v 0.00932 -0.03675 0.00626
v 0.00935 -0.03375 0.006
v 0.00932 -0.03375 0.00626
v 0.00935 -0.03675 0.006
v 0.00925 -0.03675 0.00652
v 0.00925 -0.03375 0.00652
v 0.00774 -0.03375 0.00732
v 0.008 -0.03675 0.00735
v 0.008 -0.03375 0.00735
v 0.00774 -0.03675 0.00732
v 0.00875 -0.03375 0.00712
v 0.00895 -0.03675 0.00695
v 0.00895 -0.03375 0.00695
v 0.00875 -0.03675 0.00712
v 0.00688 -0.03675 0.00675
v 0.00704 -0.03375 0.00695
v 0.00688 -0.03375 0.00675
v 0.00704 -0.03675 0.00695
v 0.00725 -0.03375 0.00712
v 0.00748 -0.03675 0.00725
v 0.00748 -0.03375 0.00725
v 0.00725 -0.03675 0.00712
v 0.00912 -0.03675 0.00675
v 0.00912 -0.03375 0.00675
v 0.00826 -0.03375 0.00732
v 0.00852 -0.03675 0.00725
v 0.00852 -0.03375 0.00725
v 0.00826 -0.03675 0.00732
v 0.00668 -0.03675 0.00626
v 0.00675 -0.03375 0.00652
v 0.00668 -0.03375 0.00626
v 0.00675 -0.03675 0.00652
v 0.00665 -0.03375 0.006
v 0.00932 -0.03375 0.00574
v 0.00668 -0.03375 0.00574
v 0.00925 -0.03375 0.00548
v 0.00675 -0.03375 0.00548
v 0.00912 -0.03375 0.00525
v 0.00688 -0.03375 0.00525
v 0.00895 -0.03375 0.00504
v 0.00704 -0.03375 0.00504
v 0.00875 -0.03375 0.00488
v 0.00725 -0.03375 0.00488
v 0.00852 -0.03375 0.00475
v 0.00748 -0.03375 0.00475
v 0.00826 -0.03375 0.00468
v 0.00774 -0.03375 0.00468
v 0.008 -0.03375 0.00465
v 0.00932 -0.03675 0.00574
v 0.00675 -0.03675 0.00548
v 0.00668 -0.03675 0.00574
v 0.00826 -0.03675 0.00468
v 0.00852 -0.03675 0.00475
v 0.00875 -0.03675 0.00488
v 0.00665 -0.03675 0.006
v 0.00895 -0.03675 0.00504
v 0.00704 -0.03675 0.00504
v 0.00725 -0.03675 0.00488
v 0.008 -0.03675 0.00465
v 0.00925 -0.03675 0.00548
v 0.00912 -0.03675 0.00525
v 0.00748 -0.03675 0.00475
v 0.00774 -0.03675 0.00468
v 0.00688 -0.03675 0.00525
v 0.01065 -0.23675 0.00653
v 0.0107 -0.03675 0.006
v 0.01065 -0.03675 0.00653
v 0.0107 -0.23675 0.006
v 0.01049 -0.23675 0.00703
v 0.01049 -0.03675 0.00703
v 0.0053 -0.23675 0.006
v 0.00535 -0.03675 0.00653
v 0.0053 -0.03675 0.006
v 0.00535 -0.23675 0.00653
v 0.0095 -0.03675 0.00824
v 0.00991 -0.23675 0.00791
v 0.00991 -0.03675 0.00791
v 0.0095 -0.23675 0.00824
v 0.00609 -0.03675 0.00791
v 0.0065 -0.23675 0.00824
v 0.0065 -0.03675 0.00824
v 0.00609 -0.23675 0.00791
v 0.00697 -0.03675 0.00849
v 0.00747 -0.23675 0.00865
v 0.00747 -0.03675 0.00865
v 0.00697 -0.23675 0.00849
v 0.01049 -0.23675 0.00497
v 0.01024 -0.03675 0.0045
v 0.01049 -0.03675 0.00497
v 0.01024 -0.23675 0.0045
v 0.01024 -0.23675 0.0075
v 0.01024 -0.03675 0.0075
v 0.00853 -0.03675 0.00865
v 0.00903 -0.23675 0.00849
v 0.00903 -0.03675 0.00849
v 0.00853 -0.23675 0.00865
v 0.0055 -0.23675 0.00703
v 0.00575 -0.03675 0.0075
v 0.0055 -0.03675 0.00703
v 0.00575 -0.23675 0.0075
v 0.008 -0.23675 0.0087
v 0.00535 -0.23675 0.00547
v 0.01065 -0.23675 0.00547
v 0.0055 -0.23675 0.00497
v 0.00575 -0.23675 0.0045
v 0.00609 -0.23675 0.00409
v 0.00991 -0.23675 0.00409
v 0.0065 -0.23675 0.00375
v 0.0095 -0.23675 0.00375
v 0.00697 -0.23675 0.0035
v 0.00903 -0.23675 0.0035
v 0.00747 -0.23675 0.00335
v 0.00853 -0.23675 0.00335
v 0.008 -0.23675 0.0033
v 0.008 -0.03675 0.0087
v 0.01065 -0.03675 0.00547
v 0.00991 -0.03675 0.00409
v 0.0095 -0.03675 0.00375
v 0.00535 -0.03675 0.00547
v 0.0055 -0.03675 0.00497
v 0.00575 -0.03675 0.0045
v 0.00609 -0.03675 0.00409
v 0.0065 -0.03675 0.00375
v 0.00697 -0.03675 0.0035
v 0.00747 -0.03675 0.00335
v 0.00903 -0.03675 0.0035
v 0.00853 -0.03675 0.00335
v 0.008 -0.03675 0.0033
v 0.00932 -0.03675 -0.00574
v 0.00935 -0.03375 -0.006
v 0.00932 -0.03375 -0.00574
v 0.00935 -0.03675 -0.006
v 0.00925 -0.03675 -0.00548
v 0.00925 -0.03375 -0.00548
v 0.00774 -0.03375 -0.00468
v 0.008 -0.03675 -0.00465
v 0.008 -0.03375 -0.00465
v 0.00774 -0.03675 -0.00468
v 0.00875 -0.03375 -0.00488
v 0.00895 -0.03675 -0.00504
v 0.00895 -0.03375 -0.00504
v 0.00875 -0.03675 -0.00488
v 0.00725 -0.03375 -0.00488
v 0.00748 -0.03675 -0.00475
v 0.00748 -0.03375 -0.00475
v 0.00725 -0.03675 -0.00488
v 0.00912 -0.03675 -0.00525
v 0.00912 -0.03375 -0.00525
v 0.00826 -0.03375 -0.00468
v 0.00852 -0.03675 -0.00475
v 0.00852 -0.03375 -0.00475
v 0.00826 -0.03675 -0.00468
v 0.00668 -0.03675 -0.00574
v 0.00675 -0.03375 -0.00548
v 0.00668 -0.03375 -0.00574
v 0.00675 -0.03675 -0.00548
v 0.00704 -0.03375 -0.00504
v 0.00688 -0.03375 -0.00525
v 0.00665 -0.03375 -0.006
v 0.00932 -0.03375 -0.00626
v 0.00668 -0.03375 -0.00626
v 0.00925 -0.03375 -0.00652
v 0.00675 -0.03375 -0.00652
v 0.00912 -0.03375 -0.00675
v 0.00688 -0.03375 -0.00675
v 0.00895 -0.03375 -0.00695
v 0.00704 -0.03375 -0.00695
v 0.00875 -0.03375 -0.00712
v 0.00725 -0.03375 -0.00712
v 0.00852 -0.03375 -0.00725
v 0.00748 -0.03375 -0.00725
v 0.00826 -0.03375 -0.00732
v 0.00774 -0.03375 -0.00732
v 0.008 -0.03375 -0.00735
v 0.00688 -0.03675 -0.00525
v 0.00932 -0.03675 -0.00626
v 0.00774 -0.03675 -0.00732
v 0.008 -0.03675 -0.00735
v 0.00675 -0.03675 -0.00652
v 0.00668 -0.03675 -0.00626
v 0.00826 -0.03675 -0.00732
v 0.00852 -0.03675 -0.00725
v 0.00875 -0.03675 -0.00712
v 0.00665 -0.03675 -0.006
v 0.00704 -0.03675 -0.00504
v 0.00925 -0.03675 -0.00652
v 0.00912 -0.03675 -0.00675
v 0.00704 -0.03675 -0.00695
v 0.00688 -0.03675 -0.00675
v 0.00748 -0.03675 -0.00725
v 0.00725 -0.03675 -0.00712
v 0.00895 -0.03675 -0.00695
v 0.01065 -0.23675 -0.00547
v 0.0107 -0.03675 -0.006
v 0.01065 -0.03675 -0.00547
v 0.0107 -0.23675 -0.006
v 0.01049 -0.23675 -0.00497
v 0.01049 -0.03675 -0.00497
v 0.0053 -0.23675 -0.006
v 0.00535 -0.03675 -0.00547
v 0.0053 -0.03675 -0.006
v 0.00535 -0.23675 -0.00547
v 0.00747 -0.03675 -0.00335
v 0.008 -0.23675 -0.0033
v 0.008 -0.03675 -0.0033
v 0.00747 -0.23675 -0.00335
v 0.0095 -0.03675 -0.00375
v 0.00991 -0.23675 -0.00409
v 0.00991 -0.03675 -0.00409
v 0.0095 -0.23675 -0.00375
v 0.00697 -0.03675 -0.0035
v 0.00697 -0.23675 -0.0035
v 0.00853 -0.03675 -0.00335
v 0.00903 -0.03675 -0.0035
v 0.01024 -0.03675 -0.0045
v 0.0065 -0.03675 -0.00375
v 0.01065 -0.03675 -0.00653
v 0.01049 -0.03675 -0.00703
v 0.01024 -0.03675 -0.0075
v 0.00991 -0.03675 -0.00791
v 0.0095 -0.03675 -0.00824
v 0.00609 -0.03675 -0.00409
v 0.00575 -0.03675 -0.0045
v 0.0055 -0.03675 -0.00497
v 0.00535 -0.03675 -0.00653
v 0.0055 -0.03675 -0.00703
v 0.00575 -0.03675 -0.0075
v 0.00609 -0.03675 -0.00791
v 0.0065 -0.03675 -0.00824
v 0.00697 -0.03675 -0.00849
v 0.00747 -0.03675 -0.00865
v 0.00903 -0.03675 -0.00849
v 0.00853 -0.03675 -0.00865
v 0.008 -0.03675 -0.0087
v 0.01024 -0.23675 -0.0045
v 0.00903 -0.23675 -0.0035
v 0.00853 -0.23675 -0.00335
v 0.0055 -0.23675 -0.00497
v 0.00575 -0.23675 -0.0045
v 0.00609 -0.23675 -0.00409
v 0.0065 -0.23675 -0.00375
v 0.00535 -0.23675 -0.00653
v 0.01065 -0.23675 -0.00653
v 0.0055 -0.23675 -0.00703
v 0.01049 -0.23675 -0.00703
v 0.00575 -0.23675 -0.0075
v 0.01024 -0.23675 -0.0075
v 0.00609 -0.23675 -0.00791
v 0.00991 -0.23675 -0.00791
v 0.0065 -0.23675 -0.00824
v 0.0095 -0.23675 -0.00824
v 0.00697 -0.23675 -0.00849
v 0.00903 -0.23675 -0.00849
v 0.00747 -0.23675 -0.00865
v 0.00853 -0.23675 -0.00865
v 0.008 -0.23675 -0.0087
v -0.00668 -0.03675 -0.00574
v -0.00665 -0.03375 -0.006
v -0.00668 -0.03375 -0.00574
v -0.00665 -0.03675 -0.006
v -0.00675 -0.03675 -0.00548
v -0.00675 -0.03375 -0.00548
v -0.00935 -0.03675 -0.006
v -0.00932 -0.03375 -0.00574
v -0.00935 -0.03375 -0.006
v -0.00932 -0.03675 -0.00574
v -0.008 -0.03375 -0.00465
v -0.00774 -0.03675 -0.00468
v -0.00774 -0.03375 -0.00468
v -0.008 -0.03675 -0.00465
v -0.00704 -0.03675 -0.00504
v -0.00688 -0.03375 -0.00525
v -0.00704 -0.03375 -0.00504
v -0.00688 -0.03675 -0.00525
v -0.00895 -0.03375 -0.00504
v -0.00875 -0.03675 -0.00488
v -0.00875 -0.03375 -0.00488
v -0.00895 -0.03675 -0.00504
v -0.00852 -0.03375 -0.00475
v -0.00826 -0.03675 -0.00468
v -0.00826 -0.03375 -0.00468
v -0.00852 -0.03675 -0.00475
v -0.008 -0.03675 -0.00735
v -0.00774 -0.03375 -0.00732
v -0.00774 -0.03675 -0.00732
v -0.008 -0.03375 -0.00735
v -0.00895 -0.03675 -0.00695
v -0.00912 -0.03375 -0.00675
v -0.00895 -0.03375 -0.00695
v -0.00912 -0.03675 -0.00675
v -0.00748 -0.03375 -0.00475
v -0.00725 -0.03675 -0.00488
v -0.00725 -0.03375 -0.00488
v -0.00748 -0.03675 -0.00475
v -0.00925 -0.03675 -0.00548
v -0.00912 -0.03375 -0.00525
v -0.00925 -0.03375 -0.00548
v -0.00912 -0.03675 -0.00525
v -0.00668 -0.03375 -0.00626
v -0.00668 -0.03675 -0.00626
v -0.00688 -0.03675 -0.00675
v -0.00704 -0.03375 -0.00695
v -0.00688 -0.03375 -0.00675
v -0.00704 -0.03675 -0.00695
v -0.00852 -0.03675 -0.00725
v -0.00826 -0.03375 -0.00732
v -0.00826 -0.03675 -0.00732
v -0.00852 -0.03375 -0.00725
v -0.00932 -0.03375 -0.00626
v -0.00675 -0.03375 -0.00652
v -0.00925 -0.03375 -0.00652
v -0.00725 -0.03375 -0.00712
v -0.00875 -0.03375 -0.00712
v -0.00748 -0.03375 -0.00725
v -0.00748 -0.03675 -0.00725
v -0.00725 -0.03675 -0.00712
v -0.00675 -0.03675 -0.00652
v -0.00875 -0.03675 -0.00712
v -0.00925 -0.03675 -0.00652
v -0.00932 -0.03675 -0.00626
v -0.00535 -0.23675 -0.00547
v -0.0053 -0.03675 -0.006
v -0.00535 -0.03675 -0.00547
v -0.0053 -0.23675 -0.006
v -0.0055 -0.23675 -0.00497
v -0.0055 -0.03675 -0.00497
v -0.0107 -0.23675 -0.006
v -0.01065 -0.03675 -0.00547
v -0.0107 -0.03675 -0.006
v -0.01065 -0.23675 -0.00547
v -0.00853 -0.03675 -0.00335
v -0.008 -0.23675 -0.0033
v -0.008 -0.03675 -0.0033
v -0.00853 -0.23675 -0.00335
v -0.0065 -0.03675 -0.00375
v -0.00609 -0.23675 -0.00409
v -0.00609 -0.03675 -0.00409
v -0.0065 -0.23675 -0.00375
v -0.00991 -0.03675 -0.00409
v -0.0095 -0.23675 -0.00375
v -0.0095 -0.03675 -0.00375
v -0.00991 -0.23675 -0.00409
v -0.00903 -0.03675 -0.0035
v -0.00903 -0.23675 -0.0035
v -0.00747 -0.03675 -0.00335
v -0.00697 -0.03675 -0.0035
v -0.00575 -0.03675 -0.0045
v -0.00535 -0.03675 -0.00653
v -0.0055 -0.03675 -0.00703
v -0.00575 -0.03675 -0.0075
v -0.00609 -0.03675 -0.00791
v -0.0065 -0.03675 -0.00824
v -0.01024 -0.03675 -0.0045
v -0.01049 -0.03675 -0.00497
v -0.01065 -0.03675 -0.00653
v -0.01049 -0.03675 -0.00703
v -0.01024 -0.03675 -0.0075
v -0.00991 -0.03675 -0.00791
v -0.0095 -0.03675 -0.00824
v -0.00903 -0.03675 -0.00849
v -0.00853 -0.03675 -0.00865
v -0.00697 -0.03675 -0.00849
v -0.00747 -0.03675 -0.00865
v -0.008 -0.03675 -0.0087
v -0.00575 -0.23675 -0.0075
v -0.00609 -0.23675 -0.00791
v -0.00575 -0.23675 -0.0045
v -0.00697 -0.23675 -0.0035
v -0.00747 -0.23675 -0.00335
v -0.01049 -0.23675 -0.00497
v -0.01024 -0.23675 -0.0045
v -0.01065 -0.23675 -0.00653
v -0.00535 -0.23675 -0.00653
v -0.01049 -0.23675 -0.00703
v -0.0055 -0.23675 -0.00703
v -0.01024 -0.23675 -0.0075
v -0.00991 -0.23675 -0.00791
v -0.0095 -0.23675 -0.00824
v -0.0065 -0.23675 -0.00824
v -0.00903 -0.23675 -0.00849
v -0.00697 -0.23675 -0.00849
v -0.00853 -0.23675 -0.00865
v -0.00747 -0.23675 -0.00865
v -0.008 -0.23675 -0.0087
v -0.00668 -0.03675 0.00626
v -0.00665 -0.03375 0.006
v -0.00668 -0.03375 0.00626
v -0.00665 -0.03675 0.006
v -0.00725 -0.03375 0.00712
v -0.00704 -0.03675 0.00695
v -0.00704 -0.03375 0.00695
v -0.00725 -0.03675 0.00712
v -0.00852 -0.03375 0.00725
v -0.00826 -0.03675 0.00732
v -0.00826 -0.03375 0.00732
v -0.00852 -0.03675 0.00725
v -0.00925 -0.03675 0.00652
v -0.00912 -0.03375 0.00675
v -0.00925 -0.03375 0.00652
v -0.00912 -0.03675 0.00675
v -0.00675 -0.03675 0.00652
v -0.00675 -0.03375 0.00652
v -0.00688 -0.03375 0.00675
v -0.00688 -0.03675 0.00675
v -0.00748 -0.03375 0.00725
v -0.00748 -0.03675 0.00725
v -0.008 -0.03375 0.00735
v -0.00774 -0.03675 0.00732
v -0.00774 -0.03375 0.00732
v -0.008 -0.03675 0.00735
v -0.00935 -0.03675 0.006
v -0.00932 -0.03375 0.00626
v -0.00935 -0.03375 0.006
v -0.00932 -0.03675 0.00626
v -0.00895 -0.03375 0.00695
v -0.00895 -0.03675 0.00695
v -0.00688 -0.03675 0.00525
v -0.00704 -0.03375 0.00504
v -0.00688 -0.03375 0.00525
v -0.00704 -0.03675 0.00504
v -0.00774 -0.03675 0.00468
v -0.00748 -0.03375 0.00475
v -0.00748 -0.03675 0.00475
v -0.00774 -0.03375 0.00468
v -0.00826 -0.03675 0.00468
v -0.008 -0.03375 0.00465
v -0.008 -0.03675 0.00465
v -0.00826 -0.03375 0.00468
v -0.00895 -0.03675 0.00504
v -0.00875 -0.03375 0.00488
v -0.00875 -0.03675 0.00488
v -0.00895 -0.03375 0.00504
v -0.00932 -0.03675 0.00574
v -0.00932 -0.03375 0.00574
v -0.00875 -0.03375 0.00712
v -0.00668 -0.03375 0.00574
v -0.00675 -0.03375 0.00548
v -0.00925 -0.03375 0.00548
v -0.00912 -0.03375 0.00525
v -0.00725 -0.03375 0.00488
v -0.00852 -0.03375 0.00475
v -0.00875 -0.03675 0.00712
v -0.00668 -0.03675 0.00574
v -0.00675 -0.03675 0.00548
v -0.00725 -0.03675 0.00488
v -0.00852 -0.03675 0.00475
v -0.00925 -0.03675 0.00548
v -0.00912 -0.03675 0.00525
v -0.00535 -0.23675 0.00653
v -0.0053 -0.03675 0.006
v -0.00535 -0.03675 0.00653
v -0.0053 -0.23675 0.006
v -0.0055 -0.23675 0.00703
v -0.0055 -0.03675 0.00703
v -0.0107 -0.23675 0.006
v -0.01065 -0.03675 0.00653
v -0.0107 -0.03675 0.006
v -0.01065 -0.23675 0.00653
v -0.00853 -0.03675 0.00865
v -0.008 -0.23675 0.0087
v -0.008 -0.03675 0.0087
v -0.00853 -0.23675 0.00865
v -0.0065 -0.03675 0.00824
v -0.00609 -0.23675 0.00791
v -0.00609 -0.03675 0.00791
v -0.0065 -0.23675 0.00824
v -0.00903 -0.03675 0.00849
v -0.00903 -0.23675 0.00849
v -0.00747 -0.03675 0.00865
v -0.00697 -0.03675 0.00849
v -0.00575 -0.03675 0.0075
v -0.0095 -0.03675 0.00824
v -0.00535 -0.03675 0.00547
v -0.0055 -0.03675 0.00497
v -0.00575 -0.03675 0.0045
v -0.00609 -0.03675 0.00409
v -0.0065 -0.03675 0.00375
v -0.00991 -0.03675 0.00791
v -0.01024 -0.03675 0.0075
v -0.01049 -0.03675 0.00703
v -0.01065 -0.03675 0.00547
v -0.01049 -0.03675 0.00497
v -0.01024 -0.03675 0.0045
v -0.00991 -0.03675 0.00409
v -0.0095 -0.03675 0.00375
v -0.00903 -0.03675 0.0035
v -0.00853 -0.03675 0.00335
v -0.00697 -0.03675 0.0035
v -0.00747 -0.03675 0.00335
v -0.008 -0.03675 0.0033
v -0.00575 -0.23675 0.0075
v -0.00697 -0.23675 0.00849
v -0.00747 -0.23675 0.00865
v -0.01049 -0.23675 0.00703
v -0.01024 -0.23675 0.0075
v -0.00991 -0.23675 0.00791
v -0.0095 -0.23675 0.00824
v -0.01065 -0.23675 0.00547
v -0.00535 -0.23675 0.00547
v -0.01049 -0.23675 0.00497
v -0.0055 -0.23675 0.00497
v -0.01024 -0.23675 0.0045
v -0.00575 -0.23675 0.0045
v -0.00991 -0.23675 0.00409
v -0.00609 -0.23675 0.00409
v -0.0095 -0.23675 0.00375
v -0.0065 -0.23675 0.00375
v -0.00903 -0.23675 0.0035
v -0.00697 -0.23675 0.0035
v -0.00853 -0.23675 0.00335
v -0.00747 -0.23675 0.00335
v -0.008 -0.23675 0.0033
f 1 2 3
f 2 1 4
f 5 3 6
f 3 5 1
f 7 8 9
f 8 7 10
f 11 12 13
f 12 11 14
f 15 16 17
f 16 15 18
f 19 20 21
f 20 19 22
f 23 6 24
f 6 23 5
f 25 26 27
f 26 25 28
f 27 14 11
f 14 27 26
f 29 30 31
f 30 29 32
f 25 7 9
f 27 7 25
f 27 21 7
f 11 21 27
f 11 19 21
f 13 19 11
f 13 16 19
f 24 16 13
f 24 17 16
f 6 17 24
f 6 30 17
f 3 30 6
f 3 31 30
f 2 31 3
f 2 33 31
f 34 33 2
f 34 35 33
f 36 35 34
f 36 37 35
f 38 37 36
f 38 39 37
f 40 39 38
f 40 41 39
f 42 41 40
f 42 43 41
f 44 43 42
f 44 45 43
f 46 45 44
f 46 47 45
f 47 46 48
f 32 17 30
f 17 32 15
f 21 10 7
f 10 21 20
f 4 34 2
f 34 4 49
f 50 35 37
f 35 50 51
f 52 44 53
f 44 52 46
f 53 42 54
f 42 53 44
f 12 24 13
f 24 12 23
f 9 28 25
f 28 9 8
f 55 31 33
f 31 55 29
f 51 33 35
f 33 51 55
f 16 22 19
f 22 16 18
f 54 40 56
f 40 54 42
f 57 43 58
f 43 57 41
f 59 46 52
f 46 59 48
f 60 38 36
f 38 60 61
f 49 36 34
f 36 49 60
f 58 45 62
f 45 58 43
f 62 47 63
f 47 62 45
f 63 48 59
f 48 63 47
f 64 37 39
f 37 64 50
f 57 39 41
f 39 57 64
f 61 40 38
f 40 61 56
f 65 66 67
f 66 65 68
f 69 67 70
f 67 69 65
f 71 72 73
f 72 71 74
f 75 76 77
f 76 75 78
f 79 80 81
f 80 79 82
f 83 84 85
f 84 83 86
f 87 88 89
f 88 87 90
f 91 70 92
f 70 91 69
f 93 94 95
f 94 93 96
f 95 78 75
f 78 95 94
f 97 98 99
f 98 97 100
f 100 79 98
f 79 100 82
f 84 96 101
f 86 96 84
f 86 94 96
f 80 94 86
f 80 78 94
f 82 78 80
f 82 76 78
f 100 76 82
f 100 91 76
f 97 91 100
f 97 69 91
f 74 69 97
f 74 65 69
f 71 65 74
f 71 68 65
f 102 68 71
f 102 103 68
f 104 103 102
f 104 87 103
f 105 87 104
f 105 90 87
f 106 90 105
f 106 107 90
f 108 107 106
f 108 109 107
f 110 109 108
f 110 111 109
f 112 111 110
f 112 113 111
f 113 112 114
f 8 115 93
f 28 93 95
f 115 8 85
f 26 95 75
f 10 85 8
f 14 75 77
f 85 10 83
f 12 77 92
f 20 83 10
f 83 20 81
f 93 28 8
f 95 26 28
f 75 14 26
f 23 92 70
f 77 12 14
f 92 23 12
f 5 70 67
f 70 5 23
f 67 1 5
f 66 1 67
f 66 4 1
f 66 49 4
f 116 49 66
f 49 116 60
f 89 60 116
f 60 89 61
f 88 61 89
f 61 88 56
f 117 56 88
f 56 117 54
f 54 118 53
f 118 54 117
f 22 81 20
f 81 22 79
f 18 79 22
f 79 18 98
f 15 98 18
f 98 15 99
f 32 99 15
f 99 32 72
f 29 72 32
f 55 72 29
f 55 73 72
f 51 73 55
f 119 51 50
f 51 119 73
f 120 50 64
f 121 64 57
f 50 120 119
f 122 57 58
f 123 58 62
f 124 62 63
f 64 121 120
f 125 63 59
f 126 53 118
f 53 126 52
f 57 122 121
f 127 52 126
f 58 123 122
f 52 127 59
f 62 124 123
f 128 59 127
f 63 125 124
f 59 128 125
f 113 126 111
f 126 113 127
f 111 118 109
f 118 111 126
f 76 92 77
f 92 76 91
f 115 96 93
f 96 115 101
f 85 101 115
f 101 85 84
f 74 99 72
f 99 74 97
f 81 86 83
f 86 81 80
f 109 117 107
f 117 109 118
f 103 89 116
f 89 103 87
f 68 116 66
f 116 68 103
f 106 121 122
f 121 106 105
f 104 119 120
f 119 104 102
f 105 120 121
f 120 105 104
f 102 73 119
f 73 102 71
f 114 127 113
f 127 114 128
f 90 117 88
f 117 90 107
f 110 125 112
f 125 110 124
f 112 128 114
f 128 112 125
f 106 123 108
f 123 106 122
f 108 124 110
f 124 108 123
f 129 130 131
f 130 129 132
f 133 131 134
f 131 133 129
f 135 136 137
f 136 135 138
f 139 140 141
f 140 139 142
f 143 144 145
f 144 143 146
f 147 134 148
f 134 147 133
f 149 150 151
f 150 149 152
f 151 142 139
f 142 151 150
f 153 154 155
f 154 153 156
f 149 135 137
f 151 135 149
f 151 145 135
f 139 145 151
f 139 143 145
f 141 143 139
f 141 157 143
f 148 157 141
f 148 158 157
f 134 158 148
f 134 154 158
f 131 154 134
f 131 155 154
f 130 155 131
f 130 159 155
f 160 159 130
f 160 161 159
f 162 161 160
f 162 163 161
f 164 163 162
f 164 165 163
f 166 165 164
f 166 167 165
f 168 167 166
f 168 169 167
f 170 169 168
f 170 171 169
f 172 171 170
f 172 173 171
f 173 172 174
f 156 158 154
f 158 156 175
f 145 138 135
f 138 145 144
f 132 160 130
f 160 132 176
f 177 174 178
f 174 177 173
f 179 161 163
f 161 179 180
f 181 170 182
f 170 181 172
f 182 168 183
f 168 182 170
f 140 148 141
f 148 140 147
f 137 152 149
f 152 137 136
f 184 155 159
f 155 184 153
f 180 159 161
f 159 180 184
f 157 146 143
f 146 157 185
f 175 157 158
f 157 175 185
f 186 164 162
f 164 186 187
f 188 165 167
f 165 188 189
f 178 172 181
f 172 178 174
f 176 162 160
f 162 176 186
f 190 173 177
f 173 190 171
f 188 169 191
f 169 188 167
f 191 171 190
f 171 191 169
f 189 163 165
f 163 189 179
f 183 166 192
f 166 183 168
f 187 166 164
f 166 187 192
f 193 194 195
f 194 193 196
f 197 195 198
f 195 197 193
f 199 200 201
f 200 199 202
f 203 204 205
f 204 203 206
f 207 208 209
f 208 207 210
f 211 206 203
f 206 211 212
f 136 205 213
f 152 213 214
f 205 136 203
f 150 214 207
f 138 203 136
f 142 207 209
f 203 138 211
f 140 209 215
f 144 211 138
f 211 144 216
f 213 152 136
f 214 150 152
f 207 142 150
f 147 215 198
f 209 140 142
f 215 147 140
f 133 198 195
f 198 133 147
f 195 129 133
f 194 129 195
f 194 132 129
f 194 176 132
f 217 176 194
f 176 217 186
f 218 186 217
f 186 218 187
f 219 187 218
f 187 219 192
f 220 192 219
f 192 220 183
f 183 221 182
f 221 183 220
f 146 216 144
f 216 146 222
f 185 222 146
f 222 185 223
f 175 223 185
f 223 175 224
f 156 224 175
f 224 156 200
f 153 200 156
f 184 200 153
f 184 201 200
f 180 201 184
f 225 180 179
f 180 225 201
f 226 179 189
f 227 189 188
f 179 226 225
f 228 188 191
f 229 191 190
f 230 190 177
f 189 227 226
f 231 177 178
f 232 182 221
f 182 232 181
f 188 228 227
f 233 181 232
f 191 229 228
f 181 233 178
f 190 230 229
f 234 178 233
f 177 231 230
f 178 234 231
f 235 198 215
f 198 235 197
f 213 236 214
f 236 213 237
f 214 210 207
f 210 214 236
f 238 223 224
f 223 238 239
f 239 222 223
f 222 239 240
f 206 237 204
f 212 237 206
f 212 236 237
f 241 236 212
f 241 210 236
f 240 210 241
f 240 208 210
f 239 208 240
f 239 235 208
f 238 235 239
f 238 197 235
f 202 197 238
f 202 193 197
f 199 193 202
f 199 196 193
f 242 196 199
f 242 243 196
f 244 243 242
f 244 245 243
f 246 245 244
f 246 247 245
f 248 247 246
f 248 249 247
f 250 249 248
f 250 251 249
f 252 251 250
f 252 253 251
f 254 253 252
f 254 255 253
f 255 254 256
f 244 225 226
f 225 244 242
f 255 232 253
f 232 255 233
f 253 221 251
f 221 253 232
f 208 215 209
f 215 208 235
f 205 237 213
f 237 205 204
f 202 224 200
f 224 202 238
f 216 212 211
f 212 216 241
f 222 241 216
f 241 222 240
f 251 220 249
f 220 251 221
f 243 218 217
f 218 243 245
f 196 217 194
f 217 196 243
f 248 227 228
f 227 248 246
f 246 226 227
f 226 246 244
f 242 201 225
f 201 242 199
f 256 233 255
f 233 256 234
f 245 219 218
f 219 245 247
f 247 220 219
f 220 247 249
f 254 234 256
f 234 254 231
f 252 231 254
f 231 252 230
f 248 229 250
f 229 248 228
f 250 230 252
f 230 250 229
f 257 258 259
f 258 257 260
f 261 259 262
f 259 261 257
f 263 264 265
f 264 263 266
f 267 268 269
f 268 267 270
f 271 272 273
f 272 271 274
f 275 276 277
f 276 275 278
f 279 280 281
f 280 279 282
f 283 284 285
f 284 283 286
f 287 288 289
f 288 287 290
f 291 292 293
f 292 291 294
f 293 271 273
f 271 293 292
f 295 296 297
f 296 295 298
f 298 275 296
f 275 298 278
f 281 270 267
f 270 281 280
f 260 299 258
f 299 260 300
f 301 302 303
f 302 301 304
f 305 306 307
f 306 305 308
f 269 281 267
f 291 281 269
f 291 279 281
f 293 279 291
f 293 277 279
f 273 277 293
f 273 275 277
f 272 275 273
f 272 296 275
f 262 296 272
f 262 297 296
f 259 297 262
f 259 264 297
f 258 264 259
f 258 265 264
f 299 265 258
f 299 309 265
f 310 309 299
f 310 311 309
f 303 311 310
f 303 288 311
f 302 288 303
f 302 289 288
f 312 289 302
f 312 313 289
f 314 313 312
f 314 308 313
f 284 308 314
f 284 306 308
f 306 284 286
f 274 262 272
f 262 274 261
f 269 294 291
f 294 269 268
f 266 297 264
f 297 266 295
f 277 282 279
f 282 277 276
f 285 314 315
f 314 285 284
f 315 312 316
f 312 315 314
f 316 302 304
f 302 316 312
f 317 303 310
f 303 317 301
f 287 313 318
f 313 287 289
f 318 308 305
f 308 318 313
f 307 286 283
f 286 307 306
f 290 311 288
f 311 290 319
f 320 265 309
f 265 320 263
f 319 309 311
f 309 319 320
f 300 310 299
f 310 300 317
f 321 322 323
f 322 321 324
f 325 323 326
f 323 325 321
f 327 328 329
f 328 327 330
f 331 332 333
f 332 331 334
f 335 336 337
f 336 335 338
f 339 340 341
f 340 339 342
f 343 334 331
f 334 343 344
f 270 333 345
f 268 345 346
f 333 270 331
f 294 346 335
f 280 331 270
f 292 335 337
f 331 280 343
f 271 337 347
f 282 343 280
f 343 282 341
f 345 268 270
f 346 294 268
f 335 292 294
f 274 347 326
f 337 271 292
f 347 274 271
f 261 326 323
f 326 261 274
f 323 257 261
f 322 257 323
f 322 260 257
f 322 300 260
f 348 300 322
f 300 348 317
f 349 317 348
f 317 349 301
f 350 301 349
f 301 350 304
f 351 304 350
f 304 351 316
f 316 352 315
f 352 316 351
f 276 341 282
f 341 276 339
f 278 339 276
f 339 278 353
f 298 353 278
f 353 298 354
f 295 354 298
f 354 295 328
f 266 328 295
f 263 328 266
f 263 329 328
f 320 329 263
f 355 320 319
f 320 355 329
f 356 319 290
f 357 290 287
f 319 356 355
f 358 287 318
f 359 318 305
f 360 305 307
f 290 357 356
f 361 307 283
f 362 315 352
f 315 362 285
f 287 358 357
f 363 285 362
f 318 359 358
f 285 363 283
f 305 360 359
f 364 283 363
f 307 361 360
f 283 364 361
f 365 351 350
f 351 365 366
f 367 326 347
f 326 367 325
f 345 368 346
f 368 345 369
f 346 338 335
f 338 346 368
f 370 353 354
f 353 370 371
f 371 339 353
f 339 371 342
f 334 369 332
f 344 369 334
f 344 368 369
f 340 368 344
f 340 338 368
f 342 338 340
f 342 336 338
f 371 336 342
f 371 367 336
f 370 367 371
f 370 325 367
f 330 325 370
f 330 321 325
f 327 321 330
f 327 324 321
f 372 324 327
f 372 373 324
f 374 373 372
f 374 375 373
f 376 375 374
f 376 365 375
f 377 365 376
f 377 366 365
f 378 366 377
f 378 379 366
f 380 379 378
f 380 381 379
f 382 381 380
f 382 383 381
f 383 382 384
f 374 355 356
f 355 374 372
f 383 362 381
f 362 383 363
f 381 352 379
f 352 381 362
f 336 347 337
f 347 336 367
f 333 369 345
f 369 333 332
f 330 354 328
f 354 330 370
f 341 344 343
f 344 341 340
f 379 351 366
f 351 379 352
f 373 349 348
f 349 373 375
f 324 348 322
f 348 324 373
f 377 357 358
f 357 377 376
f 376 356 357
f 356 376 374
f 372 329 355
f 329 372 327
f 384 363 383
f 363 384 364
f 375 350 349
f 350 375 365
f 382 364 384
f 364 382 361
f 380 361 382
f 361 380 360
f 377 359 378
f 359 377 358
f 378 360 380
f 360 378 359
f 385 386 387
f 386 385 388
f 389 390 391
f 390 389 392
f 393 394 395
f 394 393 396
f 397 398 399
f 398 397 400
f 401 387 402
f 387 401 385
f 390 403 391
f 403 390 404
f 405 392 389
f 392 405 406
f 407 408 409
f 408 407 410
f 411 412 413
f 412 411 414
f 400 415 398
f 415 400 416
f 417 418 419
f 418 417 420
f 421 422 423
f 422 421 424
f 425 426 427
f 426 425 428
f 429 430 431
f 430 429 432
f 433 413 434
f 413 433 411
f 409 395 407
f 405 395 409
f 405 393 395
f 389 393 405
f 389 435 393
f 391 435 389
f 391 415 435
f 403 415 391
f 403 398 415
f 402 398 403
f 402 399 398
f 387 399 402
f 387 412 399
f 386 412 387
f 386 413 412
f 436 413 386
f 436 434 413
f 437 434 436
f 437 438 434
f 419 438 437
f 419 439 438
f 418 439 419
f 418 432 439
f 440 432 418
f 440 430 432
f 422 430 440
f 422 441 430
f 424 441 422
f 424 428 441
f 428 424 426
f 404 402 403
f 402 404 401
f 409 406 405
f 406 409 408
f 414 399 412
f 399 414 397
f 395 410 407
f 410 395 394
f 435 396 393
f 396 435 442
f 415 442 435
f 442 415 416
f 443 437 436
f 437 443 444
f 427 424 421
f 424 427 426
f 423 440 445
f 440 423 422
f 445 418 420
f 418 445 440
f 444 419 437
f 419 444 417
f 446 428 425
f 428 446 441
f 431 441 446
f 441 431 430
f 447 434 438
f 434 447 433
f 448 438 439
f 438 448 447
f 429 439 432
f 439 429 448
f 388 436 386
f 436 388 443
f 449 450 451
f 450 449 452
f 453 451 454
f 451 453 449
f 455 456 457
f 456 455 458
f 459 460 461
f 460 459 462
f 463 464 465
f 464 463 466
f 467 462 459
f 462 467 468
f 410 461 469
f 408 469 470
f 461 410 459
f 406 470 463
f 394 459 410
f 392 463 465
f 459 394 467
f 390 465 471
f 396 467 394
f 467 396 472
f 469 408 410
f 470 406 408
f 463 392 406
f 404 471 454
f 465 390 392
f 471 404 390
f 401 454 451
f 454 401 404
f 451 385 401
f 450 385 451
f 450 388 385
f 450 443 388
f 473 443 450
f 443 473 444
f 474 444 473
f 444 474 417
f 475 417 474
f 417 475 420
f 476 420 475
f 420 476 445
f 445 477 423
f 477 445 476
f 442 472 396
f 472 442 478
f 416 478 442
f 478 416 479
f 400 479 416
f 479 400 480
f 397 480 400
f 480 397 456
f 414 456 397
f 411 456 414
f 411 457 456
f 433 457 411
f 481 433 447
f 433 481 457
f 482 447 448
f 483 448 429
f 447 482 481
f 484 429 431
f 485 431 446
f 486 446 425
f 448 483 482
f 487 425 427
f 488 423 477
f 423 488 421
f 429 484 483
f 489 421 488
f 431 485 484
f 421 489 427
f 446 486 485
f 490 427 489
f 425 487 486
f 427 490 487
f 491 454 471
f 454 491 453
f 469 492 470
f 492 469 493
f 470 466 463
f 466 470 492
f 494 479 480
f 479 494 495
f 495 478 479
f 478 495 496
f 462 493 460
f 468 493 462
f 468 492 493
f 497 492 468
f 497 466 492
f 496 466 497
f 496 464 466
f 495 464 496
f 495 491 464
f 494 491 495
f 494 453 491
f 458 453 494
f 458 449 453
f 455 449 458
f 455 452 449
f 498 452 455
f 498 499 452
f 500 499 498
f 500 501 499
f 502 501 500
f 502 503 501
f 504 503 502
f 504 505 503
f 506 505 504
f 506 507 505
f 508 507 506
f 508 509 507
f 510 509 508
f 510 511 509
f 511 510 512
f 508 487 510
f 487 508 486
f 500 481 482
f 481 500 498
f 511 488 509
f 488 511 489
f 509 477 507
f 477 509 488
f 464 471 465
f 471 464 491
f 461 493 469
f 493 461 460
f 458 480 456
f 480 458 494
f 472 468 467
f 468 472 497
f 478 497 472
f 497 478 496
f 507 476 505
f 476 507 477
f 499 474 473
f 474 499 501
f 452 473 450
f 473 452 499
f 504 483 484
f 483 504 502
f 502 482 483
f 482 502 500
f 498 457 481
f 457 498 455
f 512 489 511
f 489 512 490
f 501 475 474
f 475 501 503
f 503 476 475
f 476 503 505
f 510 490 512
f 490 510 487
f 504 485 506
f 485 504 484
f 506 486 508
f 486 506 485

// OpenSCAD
n = 128;
m = 32;
clearance = 0.0001;
delta = 0.000001;

HoleInR = 0.00125 + clearance;
HoleOutR = 2 * HoleInR;
HoleInW = 0.003;
HoleOutW = 0.2;


for (p = [[0.008, -0.03525, 0.006],
    [0.008, -0.03525, -0.006],
    [-0.008, -0.03525, -0.006],
    [-0.008, -0.03525, 0.006]]) {

x = p[0];
y = p[1];
z = p[2];

translate([x, y, z]){
    rotate(a = 90, v = [1, 0, 0]) {
        cylinder(h = HoleInW, r1 = HoleInR, r2 = HoleInR, center     = true, $fn = m);
    }
}

translate([x, y - 0.5 * (HoleInW + HoleOutW) + delta, z]){
    rotate(a = 90, v = [1, 0, 0]) {
        cylinder(h = HoleOutW, r1 = HoleOutR, r2 = HoleOutR, center = true, $fn = m);   
    }  
}

}
